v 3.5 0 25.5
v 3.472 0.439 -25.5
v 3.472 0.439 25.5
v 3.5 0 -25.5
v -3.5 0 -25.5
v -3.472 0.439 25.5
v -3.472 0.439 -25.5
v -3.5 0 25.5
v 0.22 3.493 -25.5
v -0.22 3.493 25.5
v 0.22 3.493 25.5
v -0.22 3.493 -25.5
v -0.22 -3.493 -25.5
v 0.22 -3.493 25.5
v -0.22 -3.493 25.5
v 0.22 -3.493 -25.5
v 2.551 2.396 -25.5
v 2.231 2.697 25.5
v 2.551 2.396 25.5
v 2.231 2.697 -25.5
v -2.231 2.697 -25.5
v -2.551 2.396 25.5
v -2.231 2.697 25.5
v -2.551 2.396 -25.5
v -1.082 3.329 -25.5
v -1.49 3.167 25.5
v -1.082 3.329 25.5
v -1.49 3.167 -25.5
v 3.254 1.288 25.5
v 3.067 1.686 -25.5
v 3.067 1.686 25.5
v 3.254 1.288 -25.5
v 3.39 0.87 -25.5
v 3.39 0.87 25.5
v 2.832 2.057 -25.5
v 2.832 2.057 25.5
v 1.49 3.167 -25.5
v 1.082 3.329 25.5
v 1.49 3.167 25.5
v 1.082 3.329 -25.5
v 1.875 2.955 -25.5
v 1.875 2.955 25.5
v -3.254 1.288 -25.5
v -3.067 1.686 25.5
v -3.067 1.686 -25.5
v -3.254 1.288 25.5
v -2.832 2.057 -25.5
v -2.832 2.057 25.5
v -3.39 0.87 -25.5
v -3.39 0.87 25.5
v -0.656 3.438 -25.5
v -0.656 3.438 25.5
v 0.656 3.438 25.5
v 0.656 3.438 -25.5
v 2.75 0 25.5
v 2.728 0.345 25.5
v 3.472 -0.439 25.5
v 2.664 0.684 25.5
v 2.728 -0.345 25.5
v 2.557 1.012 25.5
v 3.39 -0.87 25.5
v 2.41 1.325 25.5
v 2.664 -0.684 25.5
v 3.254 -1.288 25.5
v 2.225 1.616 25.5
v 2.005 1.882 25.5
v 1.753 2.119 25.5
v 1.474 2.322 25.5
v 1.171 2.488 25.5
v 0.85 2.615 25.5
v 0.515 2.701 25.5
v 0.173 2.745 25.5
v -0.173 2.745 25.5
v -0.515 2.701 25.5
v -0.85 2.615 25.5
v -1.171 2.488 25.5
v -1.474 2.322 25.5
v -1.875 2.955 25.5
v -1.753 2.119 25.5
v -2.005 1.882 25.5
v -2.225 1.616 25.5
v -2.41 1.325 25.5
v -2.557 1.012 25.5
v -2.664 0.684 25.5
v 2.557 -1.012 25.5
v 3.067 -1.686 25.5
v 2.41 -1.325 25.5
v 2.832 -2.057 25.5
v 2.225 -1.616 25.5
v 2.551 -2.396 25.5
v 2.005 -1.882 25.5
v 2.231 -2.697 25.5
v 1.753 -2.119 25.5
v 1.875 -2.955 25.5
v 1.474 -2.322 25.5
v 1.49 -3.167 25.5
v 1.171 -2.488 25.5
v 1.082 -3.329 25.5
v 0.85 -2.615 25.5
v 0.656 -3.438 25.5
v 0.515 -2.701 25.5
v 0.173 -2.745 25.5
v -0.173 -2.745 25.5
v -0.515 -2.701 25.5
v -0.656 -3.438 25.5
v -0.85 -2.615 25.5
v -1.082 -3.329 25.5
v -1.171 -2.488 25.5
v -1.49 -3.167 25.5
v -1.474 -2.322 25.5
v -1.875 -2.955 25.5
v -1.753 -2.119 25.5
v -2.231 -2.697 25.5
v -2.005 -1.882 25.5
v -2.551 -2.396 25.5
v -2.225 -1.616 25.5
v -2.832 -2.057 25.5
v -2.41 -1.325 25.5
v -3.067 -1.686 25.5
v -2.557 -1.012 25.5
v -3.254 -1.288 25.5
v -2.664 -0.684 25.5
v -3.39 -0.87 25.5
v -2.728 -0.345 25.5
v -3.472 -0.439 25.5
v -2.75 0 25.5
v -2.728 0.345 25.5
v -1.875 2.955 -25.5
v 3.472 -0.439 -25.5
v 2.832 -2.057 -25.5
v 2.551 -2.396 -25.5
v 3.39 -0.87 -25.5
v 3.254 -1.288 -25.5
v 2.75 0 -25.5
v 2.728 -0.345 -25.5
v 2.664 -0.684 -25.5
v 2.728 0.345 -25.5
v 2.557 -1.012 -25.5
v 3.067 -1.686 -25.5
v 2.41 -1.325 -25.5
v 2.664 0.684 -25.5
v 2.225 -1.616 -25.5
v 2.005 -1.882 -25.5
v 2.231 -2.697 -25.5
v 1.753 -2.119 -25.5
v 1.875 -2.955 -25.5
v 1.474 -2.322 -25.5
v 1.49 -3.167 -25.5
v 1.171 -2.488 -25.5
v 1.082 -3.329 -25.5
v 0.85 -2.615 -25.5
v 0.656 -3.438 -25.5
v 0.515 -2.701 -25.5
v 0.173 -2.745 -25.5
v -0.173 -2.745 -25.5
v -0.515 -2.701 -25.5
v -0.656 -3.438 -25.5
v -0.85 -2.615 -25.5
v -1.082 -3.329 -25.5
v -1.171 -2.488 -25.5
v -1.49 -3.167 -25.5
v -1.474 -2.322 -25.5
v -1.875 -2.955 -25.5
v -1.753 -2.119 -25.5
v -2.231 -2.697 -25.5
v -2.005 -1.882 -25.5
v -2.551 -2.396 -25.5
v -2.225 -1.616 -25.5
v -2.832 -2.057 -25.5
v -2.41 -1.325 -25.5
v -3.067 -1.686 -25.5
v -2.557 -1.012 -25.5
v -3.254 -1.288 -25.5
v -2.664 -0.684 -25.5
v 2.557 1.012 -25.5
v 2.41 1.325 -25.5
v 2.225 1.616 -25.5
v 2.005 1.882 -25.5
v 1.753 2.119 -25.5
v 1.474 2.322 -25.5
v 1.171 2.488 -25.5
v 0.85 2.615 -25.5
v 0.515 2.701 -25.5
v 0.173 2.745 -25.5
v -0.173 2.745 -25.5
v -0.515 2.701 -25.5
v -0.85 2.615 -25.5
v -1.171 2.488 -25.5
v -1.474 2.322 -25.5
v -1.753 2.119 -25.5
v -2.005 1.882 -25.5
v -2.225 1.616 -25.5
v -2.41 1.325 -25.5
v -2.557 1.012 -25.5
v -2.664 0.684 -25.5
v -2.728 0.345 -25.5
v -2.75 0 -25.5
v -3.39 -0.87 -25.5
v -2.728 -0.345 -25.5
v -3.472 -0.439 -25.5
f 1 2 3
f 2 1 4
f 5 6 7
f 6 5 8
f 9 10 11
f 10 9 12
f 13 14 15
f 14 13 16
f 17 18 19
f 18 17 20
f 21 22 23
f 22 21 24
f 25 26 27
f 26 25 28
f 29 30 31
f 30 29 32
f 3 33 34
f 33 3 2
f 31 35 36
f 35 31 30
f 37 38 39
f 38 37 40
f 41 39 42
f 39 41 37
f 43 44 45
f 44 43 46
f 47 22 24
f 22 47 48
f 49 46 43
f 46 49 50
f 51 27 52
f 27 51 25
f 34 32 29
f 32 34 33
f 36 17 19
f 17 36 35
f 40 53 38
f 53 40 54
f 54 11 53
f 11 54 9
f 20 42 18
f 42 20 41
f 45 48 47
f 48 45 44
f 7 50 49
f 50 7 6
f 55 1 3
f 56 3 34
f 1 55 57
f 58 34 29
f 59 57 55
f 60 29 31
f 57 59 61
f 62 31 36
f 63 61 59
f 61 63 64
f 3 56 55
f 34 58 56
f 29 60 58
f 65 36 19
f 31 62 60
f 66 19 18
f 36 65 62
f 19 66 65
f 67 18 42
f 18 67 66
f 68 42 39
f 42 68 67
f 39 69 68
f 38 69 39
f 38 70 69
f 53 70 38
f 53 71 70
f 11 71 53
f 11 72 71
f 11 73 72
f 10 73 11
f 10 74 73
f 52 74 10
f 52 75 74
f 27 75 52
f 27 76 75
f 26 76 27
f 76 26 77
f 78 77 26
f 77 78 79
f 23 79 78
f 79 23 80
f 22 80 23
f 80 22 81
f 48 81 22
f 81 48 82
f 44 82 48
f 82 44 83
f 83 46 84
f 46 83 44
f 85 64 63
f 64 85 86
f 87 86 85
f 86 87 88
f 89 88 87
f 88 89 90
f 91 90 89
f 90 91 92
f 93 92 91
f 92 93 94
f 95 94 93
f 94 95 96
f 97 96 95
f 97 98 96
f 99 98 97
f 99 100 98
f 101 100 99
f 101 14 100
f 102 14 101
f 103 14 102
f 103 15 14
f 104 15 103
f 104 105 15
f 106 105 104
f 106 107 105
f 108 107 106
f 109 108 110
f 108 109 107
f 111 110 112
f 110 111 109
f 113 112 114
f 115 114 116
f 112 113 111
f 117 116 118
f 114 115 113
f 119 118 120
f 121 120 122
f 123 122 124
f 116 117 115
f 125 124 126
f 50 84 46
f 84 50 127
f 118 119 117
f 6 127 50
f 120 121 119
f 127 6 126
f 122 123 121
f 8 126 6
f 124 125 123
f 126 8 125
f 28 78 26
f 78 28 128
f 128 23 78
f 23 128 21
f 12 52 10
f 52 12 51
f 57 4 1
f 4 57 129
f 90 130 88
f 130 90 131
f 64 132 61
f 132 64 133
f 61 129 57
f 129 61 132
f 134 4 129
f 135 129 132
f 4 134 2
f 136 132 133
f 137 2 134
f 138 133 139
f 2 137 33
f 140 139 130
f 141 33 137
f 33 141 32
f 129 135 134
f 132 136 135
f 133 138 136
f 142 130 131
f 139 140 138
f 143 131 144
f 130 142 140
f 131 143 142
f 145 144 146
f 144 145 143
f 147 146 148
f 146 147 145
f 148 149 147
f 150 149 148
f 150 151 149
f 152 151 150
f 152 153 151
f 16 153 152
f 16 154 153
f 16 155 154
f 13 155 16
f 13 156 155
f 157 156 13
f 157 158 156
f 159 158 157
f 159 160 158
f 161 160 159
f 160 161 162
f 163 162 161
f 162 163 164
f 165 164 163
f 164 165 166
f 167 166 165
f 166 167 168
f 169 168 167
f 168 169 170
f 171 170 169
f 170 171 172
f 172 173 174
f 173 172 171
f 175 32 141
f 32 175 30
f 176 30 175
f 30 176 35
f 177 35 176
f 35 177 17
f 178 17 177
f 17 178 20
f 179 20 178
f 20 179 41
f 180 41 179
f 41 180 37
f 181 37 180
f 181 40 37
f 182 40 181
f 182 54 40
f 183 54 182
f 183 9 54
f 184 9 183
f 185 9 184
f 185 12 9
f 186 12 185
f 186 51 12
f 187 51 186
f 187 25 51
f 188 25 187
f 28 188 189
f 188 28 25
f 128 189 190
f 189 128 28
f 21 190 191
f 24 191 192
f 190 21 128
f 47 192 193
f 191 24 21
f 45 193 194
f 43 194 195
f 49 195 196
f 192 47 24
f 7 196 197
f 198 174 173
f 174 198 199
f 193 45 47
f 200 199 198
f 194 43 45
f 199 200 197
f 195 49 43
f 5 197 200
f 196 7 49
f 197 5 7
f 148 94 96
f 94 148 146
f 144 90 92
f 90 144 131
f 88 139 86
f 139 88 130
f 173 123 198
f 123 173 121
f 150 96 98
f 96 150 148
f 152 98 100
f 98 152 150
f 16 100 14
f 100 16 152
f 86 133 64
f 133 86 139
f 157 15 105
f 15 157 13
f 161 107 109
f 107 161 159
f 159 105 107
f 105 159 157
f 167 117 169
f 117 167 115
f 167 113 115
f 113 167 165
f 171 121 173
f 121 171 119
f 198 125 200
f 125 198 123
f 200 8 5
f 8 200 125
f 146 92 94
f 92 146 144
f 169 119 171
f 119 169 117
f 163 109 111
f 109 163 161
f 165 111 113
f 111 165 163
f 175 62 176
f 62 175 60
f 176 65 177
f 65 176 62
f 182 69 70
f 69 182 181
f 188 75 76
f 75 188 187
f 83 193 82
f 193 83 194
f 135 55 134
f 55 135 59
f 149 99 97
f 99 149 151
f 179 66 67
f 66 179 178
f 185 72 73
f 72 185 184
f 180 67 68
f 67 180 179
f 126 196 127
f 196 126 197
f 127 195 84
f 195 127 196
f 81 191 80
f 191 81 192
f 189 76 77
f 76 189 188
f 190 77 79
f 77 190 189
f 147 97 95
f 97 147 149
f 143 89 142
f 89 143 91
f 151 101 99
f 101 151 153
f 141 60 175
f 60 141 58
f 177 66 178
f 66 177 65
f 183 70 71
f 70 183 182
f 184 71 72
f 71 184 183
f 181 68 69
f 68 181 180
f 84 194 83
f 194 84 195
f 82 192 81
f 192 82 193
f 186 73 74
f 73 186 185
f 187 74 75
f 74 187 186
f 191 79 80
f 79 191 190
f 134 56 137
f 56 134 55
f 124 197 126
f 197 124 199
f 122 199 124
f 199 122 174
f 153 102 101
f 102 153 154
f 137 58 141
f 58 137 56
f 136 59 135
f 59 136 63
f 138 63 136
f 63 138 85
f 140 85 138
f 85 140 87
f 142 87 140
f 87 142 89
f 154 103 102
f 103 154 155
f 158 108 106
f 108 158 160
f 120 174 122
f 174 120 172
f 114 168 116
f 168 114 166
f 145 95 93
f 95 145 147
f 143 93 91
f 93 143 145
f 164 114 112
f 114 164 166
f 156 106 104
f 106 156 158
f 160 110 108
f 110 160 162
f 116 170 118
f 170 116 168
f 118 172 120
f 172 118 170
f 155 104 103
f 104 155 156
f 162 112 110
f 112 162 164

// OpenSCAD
$fn = 50;


difference() {
	union() {
		translate(v = [0, 0, -25.5000000000]) {
			cylinder(h = 51, r = 3.5000000000);
		}
	}
	union() {
		translate(v = [0, 0, -100.0000000000]) {
			cylinder(h = 200, r = 2.7500000000);
		}
	}
}
